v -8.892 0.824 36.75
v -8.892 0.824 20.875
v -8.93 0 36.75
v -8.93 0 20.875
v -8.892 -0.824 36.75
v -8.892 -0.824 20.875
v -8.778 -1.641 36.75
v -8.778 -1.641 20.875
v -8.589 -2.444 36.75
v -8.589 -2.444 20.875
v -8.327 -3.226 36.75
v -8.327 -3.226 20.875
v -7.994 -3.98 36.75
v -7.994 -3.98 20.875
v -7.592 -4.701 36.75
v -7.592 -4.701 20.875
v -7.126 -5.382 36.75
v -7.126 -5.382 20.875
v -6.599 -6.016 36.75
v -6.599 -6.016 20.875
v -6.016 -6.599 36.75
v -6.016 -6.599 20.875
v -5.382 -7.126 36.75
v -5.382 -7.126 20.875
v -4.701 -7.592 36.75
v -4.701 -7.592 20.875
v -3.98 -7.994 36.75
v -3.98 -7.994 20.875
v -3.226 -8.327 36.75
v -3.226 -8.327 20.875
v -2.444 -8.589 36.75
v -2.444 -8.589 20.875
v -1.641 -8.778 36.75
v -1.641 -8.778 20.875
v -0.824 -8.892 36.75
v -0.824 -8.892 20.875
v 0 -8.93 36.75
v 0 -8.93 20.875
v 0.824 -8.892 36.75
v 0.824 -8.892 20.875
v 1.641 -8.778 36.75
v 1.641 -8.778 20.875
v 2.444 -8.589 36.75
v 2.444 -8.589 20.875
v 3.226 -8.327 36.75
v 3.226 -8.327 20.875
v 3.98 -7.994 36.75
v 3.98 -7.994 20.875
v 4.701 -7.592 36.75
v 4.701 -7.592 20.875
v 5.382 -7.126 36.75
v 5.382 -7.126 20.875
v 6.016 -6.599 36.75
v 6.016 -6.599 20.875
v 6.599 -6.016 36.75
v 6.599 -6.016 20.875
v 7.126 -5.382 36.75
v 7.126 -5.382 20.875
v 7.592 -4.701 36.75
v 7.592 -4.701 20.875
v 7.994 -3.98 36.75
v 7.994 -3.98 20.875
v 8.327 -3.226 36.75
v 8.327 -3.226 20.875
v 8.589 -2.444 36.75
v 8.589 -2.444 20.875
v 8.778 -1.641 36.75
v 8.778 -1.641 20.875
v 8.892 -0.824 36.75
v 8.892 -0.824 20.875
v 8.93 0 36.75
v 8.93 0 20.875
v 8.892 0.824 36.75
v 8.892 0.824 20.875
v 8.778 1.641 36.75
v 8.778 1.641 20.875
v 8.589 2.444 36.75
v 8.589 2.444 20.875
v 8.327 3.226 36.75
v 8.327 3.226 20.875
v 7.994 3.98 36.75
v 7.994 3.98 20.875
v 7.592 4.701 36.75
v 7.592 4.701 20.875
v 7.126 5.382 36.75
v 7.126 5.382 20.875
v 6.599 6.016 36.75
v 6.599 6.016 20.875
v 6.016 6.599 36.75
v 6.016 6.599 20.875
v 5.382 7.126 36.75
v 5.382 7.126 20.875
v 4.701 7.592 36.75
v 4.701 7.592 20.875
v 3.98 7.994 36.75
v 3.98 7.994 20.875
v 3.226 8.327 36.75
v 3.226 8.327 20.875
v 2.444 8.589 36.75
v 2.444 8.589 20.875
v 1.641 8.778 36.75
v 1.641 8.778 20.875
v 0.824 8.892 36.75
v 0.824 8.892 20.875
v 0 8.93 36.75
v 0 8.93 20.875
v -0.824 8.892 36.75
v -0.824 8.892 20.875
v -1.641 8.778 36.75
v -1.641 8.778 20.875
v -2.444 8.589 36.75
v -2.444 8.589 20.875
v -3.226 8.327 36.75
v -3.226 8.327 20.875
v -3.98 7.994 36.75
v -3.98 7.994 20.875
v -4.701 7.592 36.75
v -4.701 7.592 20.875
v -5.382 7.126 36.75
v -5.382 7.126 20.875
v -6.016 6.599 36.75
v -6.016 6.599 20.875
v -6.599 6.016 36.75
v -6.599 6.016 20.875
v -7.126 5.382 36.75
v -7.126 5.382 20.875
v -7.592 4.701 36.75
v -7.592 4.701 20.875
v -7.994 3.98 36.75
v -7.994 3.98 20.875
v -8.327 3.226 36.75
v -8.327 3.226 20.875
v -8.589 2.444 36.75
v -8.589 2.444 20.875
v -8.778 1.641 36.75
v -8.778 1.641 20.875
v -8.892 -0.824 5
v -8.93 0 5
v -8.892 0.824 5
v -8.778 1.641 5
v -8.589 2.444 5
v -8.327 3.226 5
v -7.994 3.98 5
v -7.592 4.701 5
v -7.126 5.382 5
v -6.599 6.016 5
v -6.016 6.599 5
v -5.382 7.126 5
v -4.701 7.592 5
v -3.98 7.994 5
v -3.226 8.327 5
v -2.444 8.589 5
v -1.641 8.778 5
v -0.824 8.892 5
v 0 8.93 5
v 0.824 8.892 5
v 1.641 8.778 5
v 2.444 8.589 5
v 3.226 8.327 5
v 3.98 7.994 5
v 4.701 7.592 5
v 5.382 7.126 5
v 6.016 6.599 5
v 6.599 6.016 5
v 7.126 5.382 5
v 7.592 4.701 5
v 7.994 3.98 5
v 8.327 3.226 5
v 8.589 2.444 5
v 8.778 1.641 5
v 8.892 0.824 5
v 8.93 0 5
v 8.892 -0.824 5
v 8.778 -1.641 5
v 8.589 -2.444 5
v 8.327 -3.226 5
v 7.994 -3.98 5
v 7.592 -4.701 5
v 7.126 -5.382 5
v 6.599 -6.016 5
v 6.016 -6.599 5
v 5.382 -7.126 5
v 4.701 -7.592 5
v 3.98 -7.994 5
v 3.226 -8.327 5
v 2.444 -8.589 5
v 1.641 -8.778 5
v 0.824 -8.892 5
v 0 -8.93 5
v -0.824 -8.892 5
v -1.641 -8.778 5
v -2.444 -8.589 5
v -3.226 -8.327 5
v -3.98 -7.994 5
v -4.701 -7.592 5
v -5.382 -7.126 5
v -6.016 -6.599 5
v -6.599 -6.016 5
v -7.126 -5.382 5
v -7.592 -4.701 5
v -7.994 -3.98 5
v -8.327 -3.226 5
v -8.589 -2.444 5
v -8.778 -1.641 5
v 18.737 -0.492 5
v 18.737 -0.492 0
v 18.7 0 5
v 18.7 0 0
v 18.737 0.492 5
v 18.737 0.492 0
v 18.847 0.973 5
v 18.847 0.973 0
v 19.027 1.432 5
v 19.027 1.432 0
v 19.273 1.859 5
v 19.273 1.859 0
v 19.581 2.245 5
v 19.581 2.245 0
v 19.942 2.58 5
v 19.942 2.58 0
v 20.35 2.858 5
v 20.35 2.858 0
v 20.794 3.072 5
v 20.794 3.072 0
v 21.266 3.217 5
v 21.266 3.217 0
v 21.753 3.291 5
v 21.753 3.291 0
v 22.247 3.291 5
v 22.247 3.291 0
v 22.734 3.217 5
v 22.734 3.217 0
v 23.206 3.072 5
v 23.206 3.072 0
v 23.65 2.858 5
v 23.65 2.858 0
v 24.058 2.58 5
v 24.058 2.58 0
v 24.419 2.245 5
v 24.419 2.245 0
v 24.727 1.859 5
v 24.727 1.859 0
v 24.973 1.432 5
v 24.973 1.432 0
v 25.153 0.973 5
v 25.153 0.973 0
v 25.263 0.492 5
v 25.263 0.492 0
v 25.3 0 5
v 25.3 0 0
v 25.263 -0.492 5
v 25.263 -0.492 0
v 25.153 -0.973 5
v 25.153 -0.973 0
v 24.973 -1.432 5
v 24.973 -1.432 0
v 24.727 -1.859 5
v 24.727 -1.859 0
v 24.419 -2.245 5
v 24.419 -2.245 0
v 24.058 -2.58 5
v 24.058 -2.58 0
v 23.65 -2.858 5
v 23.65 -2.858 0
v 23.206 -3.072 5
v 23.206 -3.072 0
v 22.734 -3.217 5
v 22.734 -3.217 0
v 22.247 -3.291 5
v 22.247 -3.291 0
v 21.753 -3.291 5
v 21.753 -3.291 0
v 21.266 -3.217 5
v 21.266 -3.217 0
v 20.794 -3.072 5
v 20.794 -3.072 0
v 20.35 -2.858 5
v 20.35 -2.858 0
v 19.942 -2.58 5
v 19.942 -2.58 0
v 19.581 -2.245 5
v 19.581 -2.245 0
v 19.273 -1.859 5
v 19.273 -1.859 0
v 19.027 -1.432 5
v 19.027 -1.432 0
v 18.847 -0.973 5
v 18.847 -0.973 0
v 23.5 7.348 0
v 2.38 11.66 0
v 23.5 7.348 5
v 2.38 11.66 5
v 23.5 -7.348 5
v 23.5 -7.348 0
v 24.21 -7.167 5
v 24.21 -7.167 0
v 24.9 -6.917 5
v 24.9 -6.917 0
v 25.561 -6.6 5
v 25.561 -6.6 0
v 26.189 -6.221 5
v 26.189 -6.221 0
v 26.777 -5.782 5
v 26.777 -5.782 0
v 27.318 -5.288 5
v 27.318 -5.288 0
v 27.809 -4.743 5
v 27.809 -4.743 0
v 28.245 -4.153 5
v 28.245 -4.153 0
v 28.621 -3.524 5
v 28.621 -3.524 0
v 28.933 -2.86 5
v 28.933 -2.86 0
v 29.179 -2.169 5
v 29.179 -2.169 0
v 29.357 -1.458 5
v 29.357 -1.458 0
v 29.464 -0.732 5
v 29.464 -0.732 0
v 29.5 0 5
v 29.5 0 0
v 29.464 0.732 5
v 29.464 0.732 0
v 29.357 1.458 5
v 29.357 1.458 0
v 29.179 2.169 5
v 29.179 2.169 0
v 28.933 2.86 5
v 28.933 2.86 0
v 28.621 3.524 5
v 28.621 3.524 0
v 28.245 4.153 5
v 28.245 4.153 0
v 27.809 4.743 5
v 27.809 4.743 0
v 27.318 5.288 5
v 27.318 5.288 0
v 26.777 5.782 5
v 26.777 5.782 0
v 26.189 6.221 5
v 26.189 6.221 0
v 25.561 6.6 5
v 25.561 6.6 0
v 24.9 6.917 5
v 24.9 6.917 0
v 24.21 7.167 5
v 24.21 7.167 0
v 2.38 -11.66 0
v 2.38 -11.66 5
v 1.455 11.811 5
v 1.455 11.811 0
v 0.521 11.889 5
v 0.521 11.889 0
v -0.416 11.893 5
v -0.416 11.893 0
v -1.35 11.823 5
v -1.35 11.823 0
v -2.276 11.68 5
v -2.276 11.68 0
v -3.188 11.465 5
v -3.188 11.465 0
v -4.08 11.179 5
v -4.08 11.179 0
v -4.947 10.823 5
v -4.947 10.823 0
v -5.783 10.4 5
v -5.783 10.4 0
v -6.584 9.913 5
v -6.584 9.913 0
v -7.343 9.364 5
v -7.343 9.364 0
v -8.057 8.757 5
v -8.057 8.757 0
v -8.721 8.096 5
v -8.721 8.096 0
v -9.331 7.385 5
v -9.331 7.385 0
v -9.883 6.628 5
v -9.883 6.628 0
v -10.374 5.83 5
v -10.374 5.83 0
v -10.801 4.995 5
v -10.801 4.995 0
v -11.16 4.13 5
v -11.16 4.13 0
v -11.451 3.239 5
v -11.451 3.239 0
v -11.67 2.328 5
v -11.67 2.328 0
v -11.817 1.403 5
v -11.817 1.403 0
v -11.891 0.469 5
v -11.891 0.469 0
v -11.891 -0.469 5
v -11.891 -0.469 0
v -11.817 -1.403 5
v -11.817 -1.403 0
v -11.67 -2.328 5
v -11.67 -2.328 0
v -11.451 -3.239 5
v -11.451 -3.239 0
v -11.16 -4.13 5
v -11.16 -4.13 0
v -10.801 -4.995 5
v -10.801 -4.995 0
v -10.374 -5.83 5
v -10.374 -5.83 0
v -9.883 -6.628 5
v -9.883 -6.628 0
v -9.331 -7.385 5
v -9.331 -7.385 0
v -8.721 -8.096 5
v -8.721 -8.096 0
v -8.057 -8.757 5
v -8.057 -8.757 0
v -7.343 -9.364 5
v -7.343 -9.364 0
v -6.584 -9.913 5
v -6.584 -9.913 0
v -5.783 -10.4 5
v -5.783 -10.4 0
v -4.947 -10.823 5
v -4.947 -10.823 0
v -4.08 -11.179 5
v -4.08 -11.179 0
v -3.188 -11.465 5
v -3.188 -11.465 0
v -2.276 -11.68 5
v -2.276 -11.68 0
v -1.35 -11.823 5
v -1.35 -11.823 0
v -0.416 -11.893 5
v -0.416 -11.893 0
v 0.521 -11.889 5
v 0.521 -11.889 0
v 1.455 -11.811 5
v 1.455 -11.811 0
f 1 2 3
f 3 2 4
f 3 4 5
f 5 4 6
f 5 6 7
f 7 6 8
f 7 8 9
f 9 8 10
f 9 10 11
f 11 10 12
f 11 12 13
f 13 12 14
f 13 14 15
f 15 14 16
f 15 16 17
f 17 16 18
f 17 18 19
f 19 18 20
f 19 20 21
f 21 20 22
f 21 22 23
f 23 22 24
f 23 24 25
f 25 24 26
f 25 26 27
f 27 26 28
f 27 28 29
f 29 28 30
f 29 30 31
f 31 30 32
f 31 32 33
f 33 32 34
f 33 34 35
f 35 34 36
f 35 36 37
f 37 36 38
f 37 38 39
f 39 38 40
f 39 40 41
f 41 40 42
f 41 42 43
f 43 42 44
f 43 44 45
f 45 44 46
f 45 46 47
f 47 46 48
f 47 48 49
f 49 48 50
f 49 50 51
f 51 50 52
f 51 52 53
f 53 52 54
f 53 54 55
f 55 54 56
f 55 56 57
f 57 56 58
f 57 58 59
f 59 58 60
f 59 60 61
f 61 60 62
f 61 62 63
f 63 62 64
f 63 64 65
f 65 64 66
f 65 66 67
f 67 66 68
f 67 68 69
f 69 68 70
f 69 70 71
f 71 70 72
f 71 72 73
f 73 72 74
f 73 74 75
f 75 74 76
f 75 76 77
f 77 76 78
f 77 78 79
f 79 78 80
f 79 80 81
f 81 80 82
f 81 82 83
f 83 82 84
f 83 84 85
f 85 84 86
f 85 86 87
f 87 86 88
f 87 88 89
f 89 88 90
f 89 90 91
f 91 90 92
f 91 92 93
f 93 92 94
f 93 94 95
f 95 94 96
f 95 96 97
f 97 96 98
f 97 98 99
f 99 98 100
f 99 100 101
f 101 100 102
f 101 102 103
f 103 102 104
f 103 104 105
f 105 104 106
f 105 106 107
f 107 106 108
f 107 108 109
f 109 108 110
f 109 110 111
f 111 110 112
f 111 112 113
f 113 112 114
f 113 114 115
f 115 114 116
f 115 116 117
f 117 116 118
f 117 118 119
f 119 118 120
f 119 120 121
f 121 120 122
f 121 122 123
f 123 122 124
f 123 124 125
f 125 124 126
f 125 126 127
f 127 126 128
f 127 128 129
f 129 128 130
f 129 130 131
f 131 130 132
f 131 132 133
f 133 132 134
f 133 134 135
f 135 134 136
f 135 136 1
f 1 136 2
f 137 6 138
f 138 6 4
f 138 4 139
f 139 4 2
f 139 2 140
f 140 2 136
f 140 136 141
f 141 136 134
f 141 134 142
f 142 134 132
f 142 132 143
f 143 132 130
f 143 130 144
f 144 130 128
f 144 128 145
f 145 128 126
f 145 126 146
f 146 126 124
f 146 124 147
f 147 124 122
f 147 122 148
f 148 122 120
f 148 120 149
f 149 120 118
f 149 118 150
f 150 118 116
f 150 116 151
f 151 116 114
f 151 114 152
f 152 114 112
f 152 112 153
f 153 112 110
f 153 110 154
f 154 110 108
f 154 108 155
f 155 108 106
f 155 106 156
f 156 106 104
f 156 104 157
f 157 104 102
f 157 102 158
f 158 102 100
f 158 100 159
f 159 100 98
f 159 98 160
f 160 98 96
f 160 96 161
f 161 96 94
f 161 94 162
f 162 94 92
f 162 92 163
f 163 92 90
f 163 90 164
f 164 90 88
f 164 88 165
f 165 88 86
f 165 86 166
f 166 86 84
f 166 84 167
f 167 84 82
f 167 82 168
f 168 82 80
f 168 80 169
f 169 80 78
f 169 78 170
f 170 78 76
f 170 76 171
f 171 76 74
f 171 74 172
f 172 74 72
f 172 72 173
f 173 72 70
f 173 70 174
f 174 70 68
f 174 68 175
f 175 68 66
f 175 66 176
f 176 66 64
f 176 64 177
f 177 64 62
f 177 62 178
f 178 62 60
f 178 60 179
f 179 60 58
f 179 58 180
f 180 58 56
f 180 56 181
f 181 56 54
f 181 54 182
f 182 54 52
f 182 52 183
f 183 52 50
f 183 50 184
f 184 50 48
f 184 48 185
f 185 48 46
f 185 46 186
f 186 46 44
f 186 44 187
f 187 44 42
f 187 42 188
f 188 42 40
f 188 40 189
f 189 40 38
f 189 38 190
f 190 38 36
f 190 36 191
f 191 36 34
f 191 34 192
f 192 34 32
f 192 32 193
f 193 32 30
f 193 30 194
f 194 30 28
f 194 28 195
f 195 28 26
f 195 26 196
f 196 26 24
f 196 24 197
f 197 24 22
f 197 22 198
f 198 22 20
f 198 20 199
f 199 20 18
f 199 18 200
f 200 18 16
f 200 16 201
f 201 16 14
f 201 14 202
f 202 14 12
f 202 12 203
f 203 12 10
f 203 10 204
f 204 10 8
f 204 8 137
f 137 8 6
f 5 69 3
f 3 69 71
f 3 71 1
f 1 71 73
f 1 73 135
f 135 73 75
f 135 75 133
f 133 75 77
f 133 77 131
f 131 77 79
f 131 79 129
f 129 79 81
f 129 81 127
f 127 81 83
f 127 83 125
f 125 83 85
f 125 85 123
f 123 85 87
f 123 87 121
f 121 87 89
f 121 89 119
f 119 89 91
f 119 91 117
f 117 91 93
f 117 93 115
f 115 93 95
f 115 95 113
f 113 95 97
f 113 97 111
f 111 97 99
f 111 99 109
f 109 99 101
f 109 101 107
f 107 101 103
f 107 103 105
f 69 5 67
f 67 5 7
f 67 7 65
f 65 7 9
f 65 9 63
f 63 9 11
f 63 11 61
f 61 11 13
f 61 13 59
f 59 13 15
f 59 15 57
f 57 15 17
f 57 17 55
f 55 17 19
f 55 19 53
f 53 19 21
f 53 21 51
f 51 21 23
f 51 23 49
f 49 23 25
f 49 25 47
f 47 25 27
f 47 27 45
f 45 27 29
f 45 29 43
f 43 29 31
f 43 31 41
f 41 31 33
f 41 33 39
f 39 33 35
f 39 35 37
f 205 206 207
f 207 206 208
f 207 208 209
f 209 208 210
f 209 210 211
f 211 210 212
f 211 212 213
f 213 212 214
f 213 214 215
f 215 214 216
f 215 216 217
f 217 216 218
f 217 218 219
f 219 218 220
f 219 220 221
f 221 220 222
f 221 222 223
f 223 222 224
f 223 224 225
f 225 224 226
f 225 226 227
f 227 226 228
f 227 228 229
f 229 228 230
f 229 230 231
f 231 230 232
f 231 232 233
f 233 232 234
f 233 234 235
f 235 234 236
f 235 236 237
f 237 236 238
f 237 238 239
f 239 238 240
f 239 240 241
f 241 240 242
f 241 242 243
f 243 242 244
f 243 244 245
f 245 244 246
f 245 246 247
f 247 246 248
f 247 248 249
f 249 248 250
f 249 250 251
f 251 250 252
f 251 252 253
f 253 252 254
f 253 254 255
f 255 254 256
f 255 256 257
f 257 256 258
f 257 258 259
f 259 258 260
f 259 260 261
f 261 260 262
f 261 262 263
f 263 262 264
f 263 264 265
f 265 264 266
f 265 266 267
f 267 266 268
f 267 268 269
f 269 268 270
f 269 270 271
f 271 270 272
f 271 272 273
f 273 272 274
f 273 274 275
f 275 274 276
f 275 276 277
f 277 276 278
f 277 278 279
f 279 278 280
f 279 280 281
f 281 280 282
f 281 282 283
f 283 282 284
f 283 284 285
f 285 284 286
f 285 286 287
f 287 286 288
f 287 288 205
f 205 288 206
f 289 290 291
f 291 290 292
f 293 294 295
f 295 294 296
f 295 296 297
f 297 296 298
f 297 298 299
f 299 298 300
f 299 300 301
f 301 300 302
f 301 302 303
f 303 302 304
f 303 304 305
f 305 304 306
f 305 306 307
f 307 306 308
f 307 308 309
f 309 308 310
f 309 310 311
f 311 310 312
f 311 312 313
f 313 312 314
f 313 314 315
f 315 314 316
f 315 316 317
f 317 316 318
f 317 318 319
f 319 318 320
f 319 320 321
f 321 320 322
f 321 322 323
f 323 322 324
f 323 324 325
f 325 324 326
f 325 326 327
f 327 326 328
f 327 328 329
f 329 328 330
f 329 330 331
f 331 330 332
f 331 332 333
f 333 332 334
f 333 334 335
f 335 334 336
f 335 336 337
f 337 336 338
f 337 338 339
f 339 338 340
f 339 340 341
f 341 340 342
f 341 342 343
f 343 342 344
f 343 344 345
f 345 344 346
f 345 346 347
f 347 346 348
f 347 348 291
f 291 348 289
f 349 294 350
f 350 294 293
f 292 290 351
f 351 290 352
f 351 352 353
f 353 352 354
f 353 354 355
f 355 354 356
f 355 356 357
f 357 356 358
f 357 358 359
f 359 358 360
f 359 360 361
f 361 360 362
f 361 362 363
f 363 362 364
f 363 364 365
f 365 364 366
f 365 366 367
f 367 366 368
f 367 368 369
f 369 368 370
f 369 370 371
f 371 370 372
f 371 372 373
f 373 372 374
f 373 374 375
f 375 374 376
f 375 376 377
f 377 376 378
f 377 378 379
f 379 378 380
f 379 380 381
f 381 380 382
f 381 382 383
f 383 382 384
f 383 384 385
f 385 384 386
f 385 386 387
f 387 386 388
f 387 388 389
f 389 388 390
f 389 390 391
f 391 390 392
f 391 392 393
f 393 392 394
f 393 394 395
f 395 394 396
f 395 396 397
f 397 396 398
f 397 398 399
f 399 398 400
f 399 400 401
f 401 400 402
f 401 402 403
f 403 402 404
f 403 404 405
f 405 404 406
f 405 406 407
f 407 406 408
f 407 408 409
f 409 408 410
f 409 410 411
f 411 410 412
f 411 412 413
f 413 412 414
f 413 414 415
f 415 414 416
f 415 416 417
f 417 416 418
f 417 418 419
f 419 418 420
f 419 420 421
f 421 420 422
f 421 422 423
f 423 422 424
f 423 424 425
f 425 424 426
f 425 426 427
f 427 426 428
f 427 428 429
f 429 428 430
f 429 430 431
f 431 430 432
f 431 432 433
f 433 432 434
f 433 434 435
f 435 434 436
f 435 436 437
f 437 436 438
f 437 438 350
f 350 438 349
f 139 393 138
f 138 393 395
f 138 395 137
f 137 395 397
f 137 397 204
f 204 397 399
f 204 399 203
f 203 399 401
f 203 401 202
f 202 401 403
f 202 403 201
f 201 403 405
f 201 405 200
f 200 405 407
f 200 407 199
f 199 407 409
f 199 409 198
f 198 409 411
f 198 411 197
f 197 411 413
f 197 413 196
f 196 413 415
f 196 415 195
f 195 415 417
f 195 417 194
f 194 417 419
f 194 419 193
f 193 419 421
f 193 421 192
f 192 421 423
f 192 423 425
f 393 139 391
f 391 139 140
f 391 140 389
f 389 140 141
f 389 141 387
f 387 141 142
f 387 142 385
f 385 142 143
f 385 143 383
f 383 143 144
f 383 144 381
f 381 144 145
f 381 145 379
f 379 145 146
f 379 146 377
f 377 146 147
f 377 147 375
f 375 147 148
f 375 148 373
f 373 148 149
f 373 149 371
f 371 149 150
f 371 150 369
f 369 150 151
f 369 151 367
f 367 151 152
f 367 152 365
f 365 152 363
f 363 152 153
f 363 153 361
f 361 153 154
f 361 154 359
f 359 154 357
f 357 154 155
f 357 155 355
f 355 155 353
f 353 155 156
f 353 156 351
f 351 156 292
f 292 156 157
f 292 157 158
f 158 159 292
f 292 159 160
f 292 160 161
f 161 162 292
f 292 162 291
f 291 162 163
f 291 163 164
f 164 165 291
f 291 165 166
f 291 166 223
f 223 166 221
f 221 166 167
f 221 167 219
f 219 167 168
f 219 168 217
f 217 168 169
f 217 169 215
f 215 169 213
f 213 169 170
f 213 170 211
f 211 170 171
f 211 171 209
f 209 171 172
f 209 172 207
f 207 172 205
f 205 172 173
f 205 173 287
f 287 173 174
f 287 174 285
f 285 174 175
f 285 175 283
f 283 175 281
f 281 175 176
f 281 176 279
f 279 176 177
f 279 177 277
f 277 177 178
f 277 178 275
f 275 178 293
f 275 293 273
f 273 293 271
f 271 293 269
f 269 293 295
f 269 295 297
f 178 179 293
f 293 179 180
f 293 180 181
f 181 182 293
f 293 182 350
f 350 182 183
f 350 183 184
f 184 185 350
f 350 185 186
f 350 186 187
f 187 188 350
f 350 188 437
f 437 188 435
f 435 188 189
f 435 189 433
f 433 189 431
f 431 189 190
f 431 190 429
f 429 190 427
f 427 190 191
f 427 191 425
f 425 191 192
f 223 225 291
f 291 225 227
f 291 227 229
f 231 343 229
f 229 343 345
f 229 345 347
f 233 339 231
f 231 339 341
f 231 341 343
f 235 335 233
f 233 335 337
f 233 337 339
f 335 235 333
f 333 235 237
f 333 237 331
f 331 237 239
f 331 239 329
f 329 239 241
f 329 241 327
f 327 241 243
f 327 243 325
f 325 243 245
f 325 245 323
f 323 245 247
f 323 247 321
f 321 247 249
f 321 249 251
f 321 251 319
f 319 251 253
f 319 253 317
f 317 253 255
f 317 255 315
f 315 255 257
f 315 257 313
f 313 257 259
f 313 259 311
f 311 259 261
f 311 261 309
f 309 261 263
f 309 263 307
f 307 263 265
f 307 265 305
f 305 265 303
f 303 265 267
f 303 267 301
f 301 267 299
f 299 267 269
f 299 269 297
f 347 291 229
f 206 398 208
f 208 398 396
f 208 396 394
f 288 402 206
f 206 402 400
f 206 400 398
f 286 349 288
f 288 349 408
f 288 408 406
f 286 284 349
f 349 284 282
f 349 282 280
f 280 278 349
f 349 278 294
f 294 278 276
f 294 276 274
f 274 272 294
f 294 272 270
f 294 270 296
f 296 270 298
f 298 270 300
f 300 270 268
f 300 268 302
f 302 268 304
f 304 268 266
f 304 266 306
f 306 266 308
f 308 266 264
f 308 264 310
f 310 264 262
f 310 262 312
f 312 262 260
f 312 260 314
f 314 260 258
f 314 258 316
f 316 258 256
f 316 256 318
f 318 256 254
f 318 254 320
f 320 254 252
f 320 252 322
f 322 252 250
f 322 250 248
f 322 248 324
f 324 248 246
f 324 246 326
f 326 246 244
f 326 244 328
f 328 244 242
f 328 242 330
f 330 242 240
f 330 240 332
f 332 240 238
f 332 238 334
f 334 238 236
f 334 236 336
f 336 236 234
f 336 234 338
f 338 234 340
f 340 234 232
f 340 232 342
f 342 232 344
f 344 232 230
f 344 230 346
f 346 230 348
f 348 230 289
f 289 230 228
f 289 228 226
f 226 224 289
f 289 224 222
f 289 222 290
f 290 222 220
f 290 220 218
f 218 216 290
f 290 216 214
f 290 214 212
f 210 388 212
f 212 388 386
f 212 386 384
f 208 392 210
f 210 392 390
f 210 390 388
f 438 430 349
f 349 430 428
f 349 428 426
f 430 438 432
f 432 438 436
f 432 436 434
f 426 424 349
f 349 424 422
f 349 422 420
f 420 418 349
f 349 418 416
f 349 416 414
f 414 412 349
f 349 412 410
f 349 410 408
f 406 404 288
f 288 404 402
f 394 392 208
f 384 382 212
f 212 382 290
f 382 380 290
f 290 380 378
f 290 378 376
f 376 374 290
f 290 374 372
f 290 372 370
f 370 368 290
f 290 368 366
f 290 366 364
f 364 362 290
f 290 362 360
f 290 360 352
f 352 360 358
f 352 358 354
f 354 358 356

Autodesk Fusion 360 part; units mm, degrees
sketch "Sketch1" plane through (0, 0, 0) normal (0, 0, 1) x (1, 0, 0)
  circle A0 centre (22, 0) radius 3.3
  line L0 (2.38, 11.6596) -> (23.5, 7.3485)
  line L1 (36, 0) -> (-21.665, 0) construction
  line L2 (2.38, -11.6596) -> (23.5, -7.3485)
  arc A1 (23.5, -7.3485) -> (23.5, 7.3485) centre (22, 0) ccw
  arc A2 (2.38, 11.6596) -> (2.38, -11.6596) centre (0, 0) ccw
  circle A3 centre (0, 0) radius 8.93
  dimension "d1" = 23.8
  dimension "d2" = 15
  dimension "d3" = 22
  dimension "d4" = 6.6
  dimension "d5" = 17.86
extrude "Extrude1" add sketch "Sketch1" along normal blind 5
extrude "Extrude2" add sketch "Sketch1" along normal blind 36.75 contours A3
equation "d8 = 5 mm + 31.75 mm"
